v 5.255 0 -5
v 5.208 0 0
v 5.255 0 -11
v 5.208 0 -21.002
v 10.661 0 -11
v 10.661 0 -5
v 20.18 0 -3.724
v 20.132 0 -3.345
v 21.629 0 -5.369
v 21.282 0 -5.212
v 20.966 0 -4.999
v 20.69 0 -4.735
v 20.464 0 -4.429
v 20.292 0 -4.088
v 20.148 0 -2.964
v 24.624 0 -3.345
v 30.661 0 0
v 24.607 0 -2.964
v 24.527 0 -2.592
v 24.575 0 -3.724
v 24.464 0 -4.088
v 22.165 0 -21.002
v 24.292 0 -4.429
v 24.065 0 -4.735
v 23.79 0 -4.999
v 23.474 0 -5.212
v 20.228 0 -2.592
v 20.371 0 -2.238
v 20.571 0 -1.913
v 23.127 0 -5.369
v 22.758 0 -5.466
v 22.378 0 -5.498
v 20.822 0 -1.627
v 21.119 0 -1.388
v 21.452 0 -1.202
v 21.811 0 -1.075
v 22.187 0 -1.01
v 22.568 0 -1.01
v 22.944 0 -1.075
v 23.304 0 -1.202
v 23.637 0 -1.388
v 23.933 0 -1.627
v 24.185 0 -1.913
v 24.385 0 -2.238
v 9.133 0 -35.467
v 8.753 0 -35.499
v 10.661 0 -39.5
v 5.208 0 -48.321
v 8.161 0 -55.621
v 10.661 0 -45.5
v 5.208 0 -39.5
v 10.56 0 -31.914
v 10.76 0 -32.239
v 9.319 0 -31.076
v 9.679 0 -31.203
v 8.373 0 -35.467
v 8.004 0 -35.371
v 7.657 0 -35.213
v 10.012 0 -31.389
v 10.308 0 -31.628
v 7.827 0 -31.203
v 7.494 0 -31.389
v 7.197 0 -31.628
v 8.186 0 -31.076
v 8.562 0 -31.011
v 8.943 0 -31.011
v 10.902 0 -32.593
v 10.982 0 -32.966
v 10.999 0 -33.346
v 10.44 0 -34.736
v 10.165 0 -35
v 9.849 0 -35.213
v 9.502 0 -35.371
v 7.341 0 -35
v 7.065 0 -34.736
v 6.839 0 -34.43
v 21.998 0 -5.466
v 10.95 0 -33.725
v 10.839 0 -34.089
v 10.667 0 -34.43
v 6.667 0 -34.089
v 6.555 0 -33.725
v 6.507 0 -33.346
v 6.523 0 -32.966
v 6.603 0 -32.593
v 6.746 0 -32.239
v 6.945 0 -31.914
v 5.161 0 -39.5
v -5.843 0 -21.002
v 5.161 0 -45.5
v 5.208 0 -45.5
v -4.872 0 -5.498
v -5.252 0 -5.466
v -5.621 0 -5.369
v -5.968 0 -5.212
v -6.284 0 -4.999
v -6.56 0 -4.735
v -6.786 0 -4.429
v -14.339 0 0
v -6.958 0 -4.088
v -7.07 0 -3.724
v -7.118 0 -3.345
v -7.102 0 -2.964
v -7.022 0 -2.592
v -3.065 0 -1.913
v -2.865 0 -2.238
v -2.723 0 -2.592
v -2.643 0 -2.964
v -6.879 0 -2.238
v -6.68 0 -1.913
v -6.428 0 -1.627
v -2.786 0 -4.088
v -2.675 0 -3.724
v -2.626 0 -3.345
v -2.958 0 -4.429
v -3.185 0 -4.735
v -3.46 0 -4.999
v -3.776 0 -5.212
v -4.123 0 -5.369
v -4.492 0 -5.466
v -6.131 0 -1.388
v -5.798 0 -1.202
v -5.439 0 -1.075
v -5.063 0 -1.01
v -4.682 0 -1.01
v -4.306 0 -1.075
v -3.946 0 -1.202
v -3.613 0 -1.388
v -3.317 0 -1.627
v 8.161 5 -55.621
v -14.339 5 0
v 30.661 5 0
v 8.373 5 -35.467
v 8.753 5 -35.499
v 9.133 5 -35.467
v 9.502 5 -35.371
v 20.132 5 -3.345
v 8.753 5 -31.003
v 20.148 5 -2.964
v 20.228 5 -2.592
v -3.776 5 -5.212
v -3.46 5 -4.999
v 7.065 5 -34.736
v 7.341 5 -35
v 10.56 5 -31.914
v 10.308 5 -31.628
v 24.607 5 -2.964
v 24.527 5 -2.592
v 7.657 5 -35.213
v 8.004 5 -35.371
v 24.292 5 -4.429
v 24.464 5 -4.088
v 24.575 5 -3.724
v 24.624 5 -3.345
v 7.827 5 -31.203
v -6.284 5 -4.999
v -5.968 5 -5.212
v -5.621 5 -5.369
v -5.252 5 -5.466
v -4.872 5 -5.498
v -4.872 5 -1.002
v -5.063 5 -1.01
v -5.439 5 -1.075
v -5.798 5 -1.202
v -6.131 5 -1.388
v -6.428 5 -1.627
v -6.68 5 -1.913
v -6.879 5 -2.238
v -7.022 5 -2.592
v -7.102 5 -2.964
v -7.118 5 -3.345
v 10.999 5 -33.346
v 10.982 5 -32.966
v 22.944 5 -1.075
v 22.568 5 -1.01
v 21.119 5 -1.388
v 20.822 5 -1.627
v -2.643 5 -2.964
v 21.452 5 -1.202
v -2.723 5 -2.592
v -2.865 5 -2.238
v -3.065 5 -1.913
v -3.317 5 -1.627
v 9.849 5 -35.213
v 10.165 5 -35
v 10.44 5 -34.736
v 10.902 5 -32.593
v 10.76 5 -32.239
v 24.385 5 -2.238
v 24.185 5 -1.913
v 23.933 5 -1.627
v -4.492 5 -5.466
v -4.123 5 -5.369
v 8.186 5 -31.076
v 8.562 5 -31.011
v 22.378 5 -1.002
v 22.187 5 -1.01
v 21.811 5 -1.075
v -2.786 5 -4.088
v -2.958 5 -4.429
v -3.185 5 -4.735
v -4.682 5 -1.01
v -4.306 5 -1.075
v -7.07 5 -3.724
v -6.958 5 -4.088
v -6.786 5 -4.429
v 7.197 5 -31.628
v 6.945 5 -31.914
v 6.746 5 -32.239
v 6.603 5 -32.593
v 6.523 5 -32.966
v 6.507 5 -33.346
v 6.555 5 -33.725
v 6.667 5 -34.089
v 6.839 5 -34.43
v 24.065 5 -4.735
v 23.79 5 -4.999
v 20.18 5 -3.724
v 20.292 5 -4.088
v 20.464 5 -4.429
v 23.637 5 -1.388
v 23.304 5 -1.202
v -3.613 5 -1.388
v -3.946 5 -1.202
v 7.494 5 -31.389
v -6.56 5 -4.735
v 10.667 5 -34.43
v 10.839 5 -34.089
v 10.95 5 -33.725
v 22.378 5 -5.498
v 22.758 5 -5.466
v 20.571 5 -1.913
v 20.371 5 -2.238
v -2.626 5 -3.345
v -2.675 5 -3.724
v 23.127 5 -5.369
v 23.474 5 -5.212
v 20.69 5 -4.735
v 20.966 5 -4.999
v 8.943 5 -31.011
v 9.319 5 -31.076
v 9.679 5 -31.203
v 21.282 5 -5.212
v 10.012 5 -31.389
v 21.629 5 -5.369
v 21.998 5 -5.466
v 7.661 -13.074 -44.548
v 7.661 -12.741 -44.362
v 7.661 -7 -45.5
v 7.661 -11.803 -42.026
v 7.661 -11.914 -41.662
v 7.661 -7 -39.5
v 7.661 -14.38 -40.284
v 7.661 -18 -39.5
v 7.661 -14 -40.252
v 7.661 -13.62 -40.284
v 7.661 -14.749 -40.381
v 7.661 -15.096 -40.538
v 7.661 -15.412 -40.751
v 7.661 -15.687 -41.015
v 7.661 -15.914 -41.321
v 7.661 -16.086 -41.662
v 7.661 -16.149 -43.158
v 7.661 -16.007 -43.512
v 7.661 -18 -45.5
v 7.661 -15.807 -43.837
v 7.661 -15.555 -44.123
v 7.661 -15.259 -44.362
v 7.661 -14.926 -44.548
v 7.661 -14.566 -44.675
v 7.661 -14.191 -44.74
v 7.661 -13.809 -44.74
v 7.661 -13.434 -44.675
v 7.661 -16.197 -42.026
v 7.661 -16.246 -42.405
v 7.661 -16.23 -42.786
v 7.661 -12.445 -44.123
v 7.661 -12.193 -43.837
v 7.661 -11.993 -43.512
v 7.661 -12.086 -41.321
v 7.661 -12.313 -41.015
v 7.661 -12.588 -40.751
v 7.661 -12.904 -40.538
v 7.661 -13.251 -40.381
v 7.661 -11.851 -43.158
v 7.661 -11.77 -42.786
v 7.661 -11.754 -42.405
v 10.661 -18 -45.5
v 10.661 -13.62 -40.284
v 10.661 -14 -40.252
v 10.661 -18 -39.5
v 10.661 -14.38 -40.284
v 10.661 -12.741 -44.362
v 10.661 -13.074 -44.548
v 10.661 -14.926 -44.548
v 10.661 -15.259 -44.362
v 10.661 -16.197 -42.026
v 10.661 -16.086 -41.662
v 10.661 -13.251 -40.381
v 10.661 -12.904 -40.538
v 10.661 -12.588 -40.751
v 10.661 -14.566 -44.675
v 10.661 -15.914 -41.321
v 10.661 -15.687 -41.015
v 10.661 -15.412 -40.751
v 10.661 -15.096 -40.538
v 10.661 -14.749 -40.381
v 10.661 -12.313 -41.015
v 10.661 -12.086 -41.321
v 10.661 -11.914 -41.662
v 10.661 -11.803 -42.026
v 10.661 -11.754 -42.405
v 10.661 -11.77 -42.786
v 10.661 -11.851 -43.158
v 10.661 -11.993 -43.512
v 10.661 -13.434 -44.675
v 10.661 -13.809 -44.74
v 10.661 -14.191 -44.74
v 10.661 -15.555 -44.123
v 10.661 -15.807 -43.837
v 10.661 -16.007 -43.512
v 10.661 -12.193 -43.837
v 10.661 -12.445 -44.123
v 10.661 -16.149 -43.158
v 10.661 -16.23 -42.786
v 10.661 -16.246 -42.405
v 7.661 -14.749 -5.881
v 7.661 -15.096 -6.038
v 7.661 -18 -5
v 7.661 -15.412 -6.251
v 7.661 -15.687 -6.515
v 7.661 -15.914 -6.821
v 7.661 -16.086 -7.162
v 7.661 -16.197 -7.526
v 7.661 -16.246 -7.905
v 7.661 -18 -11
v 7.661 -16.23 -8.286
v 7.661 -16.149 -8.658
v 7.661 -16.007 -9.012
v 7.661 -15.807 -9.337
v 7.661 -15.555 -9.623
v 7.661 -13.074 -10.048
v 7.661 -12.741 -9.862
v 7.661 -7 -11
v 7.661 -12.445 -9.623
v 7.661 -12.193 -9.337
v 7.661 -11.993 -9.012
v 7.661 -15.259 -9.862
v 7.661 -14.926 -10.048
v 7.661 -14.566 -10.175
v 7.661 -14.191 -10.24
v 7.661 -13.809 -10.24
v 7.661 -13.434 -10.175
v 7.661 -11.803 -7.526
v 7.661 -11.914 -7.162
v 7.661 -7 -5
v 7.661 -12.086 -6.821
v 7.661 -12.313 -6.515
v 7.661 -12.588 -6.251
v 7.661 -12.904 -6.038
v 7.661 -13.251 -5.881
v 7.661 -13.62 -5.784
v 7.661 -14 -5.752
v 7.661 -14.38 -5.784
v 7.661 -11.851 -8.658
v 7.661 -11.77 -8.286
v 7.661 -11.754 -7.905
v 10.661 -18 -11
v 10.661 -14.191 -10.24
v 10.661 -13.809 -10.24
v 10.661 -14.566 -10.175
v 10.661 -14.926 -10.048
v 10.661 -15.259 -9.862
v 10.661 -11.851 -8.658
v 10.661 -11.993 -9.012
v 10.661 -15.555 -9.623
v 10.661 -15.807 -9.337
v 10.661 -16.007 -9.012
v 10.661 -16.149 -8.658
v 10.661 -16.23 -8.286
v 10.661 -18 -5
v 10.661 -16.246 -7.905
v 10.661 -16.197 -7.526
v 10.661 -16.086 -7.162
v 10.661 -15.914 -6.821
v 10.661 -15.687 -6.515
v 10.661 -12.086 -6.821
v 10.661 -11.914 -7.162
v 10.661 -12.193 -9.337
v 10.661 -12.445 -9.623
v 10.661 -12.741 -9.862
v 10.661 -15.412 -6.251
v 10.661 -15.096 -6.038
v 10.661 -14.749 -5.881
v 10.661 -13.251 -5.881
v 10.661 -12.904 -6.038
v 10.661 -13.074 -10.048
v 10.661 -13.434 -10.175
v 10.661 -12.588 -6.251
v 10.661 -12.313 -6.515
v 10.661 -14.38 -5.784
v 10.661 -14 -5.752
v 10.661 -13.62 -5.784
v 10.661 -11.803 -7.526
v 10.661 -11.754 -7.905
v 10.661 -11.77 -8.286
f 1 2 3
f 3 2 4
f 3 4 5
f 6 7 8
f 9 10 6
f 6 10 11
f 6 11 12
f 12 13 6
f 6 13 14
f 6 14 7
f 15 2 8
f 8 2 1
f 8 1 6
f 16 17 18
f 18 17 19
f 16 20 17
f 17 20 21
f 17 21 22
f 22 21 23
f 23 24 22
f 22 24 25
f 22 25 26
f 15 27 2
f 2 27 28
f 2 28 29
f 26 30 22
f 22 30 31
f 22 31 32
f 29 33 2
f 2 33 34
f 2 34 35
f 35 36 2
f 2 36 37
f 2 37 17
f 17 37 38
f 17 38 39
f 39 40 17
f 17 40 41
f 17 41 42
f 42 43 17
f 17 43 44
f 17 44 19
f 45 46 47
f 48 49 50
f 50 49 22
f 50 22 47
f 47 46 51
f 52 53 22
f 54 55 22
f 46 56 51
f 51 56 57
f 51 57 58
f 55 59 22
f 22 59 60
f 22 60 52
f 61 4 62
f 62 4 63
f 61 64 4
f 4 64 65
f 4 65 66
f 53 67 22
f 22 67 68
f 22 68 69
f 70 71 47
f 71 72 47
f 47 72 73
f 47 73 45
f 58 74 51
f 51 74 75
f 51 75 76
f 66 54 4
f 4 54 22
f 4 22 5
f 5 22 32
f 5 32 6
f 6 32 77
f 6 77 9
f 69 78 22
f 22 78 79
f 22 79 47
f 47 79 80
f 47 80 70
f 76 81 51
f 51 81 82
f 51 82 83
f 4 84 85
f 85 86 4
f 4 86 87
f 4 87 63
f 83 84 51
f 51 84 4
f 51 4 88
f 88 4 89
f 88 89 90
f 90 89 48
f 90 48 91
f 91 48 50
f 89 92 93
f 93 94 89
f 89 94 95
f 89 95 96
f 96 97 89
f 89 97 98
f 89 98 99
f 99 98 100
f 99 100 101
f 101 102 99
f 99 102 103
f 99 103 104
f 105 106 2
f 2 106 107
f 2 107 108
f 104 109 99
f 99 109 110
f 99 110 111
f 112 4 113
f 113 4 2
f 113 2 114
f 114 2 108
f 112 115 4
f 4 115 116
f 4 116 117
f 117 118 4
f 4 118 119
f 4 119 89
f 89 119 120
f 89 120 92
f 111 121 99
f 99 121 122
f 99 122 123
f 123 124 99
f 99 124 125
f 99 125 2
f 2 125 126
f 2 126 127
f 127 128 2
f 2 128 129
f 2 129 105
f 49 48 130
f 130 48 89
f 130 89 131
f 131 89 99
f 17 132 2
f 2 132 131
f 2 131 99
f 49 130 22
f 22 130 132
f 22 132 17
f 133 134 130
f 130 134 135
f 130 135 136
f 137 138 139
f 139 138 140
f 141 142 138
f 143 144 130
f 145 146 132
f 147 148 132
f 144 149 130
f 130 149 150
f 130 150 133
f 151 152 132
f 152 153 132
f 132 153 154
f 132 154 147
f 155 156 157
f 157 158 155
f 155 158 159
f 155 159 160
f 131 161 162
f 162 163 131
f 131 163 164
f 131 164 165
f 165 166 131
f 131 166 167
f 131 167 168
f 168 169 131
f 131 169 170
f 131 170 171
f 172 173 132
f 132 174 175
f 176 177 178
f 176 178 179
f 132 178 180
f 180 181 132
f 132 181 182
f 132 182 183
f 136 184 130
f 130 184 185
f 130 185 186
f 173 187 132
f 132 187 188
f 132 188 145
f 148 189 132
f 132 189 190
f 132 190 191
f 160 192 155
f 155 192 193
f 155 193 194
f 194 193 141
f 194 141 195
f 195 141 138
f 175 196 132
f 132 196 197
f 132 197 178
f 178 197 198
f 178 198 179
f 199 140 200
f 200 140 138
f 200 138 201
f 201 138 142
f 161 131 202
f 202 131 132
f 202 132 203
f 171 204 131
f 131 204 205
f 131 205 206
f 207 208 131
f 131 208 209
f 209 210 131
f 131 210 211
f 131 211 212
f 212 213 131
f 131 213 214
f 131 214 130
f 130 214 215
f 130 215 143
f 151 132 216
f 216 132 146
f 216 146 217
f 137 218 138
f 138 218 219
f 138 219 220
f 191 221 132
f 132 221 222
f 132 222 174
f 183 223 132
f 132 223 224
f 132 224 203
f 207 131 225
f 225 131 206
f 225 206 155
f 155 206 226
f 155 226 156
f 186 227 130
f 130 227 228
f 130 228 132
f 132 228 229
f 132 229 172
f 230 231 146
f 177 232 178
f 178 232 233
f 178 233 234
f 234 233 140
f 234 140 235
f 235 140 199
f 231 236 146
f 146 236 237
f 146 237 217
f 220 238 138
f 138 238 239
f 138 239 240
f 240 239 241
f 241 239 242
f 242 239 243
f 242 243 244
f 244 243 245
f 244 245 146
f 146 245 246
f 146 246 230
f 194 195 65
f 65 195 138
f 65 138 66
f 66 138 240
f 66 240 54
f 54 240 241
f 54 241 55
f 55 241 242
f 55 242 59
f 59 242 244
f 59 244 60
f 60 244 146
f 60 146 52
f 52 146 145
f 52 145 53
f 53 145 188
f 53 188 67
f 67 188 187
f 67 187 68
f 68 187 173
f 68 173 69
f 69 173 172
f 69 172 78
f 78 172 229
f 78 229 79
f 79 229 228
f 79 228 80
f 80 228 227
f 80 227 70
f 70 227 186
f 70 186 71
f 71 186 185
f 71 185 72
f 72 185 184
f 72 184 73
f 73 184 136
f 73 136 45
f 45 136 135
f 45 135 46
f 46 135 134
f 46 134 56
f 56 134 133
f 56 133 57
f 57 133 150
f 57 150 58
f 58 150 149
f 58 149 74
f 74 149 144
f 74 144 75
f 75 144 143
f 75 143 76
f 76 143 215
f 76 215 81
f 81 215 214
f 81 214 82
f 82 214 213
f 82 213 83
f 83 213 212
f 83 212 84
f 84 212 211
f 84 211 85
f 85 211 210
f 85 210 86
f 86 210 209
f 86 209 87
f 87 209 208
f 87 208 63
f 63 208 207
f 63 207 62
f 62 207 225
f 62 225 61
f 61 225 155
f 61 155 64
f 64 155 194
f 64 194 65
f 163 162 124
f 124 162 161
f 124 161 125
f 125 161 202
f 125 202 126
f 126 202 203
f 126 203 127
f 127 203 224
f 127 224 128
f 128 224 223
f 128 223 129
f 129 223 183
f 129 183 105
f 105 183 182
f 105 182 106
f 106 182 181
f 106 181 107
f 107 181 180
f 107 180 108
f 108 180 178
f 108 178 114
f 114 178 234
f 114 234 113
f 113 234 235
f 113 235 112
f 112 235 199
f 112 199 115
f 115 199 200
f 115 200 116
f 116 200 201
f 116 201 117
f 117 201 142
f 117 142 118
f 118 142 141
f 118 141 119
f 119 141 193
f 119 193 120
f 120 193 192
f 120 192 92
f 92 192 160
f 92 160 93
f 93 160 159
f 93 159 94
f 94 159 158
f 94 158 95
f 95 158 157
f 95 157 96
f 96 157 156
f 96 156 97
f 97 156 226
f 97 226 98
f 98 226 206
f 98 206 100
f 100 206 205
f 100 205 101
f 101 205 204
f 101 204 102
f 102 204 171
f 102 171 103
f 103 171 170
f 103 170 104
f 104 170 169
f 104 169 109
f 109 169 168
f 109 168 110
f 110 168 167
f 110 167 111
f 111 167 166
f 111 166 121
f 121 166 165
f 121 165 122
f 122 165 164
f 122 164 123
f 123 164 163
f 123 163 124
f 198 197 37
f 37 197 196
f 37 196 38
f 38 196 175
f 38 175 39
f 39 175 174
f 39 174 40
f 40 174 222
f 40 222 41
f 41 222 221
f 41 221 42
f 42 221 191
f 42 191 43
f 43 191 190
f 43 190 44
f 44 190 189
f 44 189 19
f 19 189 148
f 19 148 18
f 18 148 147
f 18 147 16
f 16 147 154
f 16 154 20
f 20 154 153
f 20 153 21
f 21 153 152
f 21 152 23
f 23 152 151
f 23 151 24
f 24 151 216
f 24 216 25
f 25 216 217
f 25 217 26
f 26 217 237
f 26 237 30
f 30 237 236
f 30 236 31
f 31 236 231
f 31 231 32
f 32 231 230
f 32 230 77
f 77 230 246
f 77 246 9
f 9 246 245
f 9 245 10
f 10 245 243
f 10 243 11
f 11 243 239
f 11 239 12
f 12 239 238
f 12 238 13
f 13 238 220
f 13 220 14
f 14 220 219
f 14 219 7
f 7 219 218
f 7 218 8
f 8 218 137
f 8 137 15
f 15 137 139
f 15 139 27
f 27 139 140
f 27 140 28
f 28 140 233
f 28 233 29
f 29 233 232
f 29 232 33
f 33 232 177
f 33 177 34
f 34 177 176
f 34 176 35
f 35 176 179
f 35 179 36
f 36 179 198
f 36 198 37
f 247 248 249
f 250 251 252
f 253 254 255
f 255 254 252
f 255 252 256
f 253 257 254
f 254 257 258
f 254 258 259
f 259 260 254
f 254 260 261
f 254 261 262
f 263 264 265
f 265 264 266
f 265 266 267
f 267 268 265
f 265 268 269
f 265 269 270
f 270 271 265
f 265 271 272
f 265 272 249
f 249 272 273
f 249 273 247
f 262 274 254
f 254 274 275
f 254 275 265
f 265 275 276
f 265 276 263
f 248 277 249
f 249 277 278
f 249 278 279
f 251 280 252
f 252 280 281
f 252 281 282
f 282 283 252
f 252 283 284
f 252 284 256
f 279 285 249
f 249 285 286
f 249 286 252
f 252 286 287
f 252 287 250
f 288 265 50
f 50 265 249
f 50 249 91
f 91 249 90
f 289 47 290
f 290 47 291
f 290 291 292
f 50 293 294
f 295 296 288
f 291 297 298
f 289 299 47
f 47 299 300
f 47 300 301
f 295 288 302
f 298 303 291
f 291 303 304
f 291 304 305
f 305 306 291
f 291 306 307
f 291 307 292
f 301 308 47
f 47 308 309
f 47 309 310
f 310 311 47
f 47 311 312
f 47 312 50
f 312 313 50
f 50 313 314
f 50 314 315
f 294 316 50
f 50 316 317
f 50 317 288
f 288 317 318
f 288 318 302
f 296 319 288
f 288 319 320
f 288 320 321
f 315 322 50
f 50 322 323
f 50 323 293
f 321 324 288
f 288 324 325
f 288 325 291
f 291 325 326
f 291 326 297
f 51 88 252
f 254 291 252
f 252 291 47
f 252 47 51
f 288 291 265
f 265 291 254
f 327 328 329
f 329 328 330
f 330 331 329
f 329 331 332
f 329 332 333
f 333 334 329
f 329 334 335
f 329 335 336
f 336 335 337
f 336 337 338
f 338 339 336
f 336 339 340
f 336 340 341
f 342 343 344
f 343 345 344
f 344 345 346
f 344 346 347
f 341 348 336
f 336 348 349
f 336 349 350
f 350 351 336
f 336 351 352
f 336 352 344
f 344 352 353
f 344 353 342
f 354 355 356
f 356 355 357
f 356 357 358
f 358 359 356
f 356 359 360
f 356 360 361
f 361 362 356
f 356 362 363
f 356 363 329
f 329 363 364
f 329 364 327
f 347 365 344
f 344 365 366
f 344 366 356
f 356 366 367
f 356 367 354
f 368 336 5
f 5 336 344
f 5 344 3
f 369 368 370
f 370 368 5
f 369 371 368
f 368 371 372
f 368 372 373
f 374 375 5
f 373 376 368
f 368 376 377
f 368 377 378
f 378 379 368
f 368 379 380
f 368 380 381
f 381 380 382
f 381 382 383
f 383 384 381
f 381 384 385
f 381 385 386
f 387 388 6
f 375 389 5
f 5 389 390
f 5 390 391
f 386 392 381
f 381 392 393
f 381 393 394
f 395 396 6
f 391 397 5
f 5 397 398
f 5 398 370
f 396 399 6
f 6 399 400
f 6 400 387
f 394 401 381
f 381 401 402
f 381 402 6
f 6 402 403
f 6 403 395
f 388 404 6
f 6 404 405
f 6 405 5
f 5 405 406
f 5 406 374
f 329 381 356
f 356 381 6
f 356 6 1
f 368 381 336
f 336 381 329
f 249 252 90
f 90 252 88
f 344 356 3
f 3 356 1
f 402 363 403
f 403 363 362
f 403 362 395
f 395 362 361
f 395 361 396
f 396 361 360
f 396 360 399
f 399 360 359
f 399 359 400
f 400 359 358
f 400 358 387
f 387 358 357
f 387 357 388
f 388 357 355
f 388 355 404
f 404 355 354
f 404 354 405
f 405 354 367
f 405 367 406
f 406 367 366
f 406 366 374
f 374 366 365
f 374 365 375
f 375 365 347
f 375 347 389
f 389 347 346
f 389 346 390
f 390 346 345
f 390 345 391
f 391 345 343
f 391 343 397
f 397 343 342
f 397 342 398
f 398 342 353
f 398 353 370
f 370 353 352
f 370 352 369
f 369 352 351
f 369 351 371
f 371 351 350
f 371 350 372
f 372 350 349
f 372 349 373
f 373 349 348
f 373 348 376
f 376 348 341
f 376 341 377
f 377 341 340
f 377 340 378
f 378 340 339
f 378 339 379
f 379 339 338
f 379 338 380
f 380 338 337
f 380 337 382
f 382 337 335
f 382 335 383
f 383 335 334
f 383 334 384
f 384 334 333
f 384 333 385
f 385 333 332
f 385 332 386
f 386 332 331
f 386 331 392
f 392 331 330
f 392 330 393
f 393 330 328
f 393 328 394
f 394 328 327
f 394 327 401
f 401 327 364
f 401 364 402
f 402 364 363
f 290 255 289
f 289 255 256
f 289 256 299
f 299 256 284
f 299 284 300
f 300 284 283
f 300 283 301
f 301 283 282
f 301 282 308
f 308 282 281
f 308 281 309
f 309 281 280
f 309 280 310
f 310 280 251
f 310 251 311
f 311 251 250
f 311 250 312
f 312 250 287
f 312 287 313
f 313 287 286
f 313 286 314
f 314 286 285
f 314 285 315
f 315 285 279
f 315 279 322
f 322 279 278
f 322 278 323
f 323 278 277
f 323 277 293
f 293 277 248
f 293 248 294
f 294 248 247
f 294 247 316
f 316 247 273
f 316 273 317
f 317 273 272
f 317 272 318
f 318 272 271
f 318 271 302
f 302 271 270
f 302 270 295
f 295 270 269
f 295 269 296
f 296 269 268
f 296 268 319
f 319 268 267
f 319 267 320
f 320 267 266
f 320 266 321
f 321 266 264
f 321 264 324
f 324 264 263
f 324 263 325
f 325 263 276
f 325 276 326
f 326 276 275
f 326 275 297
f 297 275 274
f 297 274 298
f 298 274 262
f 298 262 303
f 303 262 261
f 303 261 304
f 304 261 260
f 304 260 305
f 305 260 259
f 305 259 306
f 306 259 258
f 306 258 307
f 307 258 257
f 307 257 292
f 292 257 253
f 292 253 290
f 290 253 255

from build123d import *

# Parameters (mm, degrees)
BOSS_EXTRUDE1_DEPTH       = 5
F_8_CLEARANCE_HOLE1_D     = 4.4958
F_8_CLEARANCE_HOLE1_DEPTH = 17
F_8_CLEARANCE_HOLE1_TIP   = 1.350674586
SKETCH3_W                 = 3
SKETCH3_H                 = 6
BOSS_EXTRUDE2_DEPTH       = 18
RIB2_REACH                = 59.744
SKETCH17_WALL_W           = 124.92066757
SKETCH17_WALL_H           = 6
RIB3_REACH                = 59.054
SKETCH18_WALL_W           = 123.798893364
SKETCH18_WALL_H           = 6
F_8_CLEARANCE_HOLE2_D     = 4.4958
F_8_CLEARANCE_HOLE2_DEPTH = 17
F_8_CLEARANCE_HOLE2_TIP   = 1.350674586


with BuildPart() as part:
    # Sketch1 → Boss-Extrude1 (new body)
    with BuildSketch(Plane(origin=(0, 0, 0), x_dir=(1, 0, 0), z_dir=(0, 1, 0))):
        Polygon((-14.338976611, 0), (30.661023389, 0), (8.161023389, 55.621488653), align=None)
    extrude(amount=BOSS_EXTRUDE1_DEPTH)

    # #8 Clearance Hole1
    with Locations(Plane(origin=(22.377803879, 0, -3.25), x_dir=(0, 0, -1), z_dir=(0, -1, 0))):
        with Locations((0, 0), (0, -27.25), (30.001031232, -13.625)):
            Hole(F_8_CLEARANCE_HOLE1_D / 2, depth=F_8_CLEARANCE_HOLE1_DEPTH)
            with Locations((0, 0, -(F_8_CLEARANCE_HOLE1_DEPTH + F_8_CLEARANCE_HOLE1_TIP / 2))):  # 118° drill point
                Cone(0, F_8_CLEARANCE_HOLE1_D / 2, F_8_CLEARANCE_HOLE1_TIP, mode=Mode.SUBTRACT)

    # Sketch3 → Boss-Extrude2 (add)
    with BuildSketch(Plane(origin=(0, 0, 0), x_dir=(-1, 0, 0), z_dir=(0, -1, 0))):
        with Locations((-9.161023389, 42.5)):
            Rectangle(SKETCH3_W, SKETCH3_H)
        with Locations((-9.161023389, 8)):
            Rectangle(SKETCH3_W, SKETCH3_H)
    extrude(amount=BOSS_EXTRUDE2_DEPTH)

    # Sketch17 wall → Rib2 (add, up to next)
    with BuildSketch(Plane(origin=(6.411023389, -3.5, -45.5), x_dir=(-0.336336396998, 0.941741911595, 0), z_dir=(0.941741911595, 0.336336396998, 0)), mode=Mode.PRIVATE) as rib2_sk1:
        with Locations((0, 3)):
            Rectangle(SKETCH17_WALL_W, SKETCH17_WALL_H)
    rib2_tool1 = extrude(rib2_sk1.sketch, amount=RIB2_REACH, mode=Mode.PRIVATE) - part.part
    add(rib2_tool1.solids().sort_by_distance((6.411023389, -3.5, -45.5))[0])

    # Sketch18 wall → Rib3 (add, up to next)
    with BuildSketch(Plane(origin=(6.411023389, -3.36354082, -11), x_dir=(-0.32507212999, 0.945689225012, 0), z_dir=(0.945689225012, 0.32507212999, 0)), mode=Mode.PRIVATE) as rib3_sk1:
        with Locations((0, 3)):
            Rectangle(SKETCH18_WALL_W, SKETCH18_WALL_H)
    rib3_tool1 = extrude(rib3_sk1.sketch, amount=RIB3_REACH, mode=Mode.PRIVATE) - part.part
    add(rib3_tool1.solids().sort_by_distance((6.411023389, -3.36354082, -11))[0])

    # #8 Clearance Hole2
    with Locations(Plane(origin=(7.661023389, -14, -42.5), x_dir=(0, 0, -1), z_dir=(-1, 0, 0))):
        with Locations((0, 0), (-34.5, 0)):
            Hole(F_8_CLEARANCE_HOLE2_D / 2, depth=F_8_CLEARANCE_HOLE2_DEPTH)
            with Locations((0, 0, -(F_8_CLEARANCE_HOLE2_DEPTH + F_8_CLEARANCE_HOLE2_TIP / 2))):  # 118° drill point
                Cone(0, F_8_CLEARANCE_HOLE2_D / 2, F_8_CLEARANCE_HOLE2_TIP, mode=Mode.SUBTRACT)


solid = part.part
